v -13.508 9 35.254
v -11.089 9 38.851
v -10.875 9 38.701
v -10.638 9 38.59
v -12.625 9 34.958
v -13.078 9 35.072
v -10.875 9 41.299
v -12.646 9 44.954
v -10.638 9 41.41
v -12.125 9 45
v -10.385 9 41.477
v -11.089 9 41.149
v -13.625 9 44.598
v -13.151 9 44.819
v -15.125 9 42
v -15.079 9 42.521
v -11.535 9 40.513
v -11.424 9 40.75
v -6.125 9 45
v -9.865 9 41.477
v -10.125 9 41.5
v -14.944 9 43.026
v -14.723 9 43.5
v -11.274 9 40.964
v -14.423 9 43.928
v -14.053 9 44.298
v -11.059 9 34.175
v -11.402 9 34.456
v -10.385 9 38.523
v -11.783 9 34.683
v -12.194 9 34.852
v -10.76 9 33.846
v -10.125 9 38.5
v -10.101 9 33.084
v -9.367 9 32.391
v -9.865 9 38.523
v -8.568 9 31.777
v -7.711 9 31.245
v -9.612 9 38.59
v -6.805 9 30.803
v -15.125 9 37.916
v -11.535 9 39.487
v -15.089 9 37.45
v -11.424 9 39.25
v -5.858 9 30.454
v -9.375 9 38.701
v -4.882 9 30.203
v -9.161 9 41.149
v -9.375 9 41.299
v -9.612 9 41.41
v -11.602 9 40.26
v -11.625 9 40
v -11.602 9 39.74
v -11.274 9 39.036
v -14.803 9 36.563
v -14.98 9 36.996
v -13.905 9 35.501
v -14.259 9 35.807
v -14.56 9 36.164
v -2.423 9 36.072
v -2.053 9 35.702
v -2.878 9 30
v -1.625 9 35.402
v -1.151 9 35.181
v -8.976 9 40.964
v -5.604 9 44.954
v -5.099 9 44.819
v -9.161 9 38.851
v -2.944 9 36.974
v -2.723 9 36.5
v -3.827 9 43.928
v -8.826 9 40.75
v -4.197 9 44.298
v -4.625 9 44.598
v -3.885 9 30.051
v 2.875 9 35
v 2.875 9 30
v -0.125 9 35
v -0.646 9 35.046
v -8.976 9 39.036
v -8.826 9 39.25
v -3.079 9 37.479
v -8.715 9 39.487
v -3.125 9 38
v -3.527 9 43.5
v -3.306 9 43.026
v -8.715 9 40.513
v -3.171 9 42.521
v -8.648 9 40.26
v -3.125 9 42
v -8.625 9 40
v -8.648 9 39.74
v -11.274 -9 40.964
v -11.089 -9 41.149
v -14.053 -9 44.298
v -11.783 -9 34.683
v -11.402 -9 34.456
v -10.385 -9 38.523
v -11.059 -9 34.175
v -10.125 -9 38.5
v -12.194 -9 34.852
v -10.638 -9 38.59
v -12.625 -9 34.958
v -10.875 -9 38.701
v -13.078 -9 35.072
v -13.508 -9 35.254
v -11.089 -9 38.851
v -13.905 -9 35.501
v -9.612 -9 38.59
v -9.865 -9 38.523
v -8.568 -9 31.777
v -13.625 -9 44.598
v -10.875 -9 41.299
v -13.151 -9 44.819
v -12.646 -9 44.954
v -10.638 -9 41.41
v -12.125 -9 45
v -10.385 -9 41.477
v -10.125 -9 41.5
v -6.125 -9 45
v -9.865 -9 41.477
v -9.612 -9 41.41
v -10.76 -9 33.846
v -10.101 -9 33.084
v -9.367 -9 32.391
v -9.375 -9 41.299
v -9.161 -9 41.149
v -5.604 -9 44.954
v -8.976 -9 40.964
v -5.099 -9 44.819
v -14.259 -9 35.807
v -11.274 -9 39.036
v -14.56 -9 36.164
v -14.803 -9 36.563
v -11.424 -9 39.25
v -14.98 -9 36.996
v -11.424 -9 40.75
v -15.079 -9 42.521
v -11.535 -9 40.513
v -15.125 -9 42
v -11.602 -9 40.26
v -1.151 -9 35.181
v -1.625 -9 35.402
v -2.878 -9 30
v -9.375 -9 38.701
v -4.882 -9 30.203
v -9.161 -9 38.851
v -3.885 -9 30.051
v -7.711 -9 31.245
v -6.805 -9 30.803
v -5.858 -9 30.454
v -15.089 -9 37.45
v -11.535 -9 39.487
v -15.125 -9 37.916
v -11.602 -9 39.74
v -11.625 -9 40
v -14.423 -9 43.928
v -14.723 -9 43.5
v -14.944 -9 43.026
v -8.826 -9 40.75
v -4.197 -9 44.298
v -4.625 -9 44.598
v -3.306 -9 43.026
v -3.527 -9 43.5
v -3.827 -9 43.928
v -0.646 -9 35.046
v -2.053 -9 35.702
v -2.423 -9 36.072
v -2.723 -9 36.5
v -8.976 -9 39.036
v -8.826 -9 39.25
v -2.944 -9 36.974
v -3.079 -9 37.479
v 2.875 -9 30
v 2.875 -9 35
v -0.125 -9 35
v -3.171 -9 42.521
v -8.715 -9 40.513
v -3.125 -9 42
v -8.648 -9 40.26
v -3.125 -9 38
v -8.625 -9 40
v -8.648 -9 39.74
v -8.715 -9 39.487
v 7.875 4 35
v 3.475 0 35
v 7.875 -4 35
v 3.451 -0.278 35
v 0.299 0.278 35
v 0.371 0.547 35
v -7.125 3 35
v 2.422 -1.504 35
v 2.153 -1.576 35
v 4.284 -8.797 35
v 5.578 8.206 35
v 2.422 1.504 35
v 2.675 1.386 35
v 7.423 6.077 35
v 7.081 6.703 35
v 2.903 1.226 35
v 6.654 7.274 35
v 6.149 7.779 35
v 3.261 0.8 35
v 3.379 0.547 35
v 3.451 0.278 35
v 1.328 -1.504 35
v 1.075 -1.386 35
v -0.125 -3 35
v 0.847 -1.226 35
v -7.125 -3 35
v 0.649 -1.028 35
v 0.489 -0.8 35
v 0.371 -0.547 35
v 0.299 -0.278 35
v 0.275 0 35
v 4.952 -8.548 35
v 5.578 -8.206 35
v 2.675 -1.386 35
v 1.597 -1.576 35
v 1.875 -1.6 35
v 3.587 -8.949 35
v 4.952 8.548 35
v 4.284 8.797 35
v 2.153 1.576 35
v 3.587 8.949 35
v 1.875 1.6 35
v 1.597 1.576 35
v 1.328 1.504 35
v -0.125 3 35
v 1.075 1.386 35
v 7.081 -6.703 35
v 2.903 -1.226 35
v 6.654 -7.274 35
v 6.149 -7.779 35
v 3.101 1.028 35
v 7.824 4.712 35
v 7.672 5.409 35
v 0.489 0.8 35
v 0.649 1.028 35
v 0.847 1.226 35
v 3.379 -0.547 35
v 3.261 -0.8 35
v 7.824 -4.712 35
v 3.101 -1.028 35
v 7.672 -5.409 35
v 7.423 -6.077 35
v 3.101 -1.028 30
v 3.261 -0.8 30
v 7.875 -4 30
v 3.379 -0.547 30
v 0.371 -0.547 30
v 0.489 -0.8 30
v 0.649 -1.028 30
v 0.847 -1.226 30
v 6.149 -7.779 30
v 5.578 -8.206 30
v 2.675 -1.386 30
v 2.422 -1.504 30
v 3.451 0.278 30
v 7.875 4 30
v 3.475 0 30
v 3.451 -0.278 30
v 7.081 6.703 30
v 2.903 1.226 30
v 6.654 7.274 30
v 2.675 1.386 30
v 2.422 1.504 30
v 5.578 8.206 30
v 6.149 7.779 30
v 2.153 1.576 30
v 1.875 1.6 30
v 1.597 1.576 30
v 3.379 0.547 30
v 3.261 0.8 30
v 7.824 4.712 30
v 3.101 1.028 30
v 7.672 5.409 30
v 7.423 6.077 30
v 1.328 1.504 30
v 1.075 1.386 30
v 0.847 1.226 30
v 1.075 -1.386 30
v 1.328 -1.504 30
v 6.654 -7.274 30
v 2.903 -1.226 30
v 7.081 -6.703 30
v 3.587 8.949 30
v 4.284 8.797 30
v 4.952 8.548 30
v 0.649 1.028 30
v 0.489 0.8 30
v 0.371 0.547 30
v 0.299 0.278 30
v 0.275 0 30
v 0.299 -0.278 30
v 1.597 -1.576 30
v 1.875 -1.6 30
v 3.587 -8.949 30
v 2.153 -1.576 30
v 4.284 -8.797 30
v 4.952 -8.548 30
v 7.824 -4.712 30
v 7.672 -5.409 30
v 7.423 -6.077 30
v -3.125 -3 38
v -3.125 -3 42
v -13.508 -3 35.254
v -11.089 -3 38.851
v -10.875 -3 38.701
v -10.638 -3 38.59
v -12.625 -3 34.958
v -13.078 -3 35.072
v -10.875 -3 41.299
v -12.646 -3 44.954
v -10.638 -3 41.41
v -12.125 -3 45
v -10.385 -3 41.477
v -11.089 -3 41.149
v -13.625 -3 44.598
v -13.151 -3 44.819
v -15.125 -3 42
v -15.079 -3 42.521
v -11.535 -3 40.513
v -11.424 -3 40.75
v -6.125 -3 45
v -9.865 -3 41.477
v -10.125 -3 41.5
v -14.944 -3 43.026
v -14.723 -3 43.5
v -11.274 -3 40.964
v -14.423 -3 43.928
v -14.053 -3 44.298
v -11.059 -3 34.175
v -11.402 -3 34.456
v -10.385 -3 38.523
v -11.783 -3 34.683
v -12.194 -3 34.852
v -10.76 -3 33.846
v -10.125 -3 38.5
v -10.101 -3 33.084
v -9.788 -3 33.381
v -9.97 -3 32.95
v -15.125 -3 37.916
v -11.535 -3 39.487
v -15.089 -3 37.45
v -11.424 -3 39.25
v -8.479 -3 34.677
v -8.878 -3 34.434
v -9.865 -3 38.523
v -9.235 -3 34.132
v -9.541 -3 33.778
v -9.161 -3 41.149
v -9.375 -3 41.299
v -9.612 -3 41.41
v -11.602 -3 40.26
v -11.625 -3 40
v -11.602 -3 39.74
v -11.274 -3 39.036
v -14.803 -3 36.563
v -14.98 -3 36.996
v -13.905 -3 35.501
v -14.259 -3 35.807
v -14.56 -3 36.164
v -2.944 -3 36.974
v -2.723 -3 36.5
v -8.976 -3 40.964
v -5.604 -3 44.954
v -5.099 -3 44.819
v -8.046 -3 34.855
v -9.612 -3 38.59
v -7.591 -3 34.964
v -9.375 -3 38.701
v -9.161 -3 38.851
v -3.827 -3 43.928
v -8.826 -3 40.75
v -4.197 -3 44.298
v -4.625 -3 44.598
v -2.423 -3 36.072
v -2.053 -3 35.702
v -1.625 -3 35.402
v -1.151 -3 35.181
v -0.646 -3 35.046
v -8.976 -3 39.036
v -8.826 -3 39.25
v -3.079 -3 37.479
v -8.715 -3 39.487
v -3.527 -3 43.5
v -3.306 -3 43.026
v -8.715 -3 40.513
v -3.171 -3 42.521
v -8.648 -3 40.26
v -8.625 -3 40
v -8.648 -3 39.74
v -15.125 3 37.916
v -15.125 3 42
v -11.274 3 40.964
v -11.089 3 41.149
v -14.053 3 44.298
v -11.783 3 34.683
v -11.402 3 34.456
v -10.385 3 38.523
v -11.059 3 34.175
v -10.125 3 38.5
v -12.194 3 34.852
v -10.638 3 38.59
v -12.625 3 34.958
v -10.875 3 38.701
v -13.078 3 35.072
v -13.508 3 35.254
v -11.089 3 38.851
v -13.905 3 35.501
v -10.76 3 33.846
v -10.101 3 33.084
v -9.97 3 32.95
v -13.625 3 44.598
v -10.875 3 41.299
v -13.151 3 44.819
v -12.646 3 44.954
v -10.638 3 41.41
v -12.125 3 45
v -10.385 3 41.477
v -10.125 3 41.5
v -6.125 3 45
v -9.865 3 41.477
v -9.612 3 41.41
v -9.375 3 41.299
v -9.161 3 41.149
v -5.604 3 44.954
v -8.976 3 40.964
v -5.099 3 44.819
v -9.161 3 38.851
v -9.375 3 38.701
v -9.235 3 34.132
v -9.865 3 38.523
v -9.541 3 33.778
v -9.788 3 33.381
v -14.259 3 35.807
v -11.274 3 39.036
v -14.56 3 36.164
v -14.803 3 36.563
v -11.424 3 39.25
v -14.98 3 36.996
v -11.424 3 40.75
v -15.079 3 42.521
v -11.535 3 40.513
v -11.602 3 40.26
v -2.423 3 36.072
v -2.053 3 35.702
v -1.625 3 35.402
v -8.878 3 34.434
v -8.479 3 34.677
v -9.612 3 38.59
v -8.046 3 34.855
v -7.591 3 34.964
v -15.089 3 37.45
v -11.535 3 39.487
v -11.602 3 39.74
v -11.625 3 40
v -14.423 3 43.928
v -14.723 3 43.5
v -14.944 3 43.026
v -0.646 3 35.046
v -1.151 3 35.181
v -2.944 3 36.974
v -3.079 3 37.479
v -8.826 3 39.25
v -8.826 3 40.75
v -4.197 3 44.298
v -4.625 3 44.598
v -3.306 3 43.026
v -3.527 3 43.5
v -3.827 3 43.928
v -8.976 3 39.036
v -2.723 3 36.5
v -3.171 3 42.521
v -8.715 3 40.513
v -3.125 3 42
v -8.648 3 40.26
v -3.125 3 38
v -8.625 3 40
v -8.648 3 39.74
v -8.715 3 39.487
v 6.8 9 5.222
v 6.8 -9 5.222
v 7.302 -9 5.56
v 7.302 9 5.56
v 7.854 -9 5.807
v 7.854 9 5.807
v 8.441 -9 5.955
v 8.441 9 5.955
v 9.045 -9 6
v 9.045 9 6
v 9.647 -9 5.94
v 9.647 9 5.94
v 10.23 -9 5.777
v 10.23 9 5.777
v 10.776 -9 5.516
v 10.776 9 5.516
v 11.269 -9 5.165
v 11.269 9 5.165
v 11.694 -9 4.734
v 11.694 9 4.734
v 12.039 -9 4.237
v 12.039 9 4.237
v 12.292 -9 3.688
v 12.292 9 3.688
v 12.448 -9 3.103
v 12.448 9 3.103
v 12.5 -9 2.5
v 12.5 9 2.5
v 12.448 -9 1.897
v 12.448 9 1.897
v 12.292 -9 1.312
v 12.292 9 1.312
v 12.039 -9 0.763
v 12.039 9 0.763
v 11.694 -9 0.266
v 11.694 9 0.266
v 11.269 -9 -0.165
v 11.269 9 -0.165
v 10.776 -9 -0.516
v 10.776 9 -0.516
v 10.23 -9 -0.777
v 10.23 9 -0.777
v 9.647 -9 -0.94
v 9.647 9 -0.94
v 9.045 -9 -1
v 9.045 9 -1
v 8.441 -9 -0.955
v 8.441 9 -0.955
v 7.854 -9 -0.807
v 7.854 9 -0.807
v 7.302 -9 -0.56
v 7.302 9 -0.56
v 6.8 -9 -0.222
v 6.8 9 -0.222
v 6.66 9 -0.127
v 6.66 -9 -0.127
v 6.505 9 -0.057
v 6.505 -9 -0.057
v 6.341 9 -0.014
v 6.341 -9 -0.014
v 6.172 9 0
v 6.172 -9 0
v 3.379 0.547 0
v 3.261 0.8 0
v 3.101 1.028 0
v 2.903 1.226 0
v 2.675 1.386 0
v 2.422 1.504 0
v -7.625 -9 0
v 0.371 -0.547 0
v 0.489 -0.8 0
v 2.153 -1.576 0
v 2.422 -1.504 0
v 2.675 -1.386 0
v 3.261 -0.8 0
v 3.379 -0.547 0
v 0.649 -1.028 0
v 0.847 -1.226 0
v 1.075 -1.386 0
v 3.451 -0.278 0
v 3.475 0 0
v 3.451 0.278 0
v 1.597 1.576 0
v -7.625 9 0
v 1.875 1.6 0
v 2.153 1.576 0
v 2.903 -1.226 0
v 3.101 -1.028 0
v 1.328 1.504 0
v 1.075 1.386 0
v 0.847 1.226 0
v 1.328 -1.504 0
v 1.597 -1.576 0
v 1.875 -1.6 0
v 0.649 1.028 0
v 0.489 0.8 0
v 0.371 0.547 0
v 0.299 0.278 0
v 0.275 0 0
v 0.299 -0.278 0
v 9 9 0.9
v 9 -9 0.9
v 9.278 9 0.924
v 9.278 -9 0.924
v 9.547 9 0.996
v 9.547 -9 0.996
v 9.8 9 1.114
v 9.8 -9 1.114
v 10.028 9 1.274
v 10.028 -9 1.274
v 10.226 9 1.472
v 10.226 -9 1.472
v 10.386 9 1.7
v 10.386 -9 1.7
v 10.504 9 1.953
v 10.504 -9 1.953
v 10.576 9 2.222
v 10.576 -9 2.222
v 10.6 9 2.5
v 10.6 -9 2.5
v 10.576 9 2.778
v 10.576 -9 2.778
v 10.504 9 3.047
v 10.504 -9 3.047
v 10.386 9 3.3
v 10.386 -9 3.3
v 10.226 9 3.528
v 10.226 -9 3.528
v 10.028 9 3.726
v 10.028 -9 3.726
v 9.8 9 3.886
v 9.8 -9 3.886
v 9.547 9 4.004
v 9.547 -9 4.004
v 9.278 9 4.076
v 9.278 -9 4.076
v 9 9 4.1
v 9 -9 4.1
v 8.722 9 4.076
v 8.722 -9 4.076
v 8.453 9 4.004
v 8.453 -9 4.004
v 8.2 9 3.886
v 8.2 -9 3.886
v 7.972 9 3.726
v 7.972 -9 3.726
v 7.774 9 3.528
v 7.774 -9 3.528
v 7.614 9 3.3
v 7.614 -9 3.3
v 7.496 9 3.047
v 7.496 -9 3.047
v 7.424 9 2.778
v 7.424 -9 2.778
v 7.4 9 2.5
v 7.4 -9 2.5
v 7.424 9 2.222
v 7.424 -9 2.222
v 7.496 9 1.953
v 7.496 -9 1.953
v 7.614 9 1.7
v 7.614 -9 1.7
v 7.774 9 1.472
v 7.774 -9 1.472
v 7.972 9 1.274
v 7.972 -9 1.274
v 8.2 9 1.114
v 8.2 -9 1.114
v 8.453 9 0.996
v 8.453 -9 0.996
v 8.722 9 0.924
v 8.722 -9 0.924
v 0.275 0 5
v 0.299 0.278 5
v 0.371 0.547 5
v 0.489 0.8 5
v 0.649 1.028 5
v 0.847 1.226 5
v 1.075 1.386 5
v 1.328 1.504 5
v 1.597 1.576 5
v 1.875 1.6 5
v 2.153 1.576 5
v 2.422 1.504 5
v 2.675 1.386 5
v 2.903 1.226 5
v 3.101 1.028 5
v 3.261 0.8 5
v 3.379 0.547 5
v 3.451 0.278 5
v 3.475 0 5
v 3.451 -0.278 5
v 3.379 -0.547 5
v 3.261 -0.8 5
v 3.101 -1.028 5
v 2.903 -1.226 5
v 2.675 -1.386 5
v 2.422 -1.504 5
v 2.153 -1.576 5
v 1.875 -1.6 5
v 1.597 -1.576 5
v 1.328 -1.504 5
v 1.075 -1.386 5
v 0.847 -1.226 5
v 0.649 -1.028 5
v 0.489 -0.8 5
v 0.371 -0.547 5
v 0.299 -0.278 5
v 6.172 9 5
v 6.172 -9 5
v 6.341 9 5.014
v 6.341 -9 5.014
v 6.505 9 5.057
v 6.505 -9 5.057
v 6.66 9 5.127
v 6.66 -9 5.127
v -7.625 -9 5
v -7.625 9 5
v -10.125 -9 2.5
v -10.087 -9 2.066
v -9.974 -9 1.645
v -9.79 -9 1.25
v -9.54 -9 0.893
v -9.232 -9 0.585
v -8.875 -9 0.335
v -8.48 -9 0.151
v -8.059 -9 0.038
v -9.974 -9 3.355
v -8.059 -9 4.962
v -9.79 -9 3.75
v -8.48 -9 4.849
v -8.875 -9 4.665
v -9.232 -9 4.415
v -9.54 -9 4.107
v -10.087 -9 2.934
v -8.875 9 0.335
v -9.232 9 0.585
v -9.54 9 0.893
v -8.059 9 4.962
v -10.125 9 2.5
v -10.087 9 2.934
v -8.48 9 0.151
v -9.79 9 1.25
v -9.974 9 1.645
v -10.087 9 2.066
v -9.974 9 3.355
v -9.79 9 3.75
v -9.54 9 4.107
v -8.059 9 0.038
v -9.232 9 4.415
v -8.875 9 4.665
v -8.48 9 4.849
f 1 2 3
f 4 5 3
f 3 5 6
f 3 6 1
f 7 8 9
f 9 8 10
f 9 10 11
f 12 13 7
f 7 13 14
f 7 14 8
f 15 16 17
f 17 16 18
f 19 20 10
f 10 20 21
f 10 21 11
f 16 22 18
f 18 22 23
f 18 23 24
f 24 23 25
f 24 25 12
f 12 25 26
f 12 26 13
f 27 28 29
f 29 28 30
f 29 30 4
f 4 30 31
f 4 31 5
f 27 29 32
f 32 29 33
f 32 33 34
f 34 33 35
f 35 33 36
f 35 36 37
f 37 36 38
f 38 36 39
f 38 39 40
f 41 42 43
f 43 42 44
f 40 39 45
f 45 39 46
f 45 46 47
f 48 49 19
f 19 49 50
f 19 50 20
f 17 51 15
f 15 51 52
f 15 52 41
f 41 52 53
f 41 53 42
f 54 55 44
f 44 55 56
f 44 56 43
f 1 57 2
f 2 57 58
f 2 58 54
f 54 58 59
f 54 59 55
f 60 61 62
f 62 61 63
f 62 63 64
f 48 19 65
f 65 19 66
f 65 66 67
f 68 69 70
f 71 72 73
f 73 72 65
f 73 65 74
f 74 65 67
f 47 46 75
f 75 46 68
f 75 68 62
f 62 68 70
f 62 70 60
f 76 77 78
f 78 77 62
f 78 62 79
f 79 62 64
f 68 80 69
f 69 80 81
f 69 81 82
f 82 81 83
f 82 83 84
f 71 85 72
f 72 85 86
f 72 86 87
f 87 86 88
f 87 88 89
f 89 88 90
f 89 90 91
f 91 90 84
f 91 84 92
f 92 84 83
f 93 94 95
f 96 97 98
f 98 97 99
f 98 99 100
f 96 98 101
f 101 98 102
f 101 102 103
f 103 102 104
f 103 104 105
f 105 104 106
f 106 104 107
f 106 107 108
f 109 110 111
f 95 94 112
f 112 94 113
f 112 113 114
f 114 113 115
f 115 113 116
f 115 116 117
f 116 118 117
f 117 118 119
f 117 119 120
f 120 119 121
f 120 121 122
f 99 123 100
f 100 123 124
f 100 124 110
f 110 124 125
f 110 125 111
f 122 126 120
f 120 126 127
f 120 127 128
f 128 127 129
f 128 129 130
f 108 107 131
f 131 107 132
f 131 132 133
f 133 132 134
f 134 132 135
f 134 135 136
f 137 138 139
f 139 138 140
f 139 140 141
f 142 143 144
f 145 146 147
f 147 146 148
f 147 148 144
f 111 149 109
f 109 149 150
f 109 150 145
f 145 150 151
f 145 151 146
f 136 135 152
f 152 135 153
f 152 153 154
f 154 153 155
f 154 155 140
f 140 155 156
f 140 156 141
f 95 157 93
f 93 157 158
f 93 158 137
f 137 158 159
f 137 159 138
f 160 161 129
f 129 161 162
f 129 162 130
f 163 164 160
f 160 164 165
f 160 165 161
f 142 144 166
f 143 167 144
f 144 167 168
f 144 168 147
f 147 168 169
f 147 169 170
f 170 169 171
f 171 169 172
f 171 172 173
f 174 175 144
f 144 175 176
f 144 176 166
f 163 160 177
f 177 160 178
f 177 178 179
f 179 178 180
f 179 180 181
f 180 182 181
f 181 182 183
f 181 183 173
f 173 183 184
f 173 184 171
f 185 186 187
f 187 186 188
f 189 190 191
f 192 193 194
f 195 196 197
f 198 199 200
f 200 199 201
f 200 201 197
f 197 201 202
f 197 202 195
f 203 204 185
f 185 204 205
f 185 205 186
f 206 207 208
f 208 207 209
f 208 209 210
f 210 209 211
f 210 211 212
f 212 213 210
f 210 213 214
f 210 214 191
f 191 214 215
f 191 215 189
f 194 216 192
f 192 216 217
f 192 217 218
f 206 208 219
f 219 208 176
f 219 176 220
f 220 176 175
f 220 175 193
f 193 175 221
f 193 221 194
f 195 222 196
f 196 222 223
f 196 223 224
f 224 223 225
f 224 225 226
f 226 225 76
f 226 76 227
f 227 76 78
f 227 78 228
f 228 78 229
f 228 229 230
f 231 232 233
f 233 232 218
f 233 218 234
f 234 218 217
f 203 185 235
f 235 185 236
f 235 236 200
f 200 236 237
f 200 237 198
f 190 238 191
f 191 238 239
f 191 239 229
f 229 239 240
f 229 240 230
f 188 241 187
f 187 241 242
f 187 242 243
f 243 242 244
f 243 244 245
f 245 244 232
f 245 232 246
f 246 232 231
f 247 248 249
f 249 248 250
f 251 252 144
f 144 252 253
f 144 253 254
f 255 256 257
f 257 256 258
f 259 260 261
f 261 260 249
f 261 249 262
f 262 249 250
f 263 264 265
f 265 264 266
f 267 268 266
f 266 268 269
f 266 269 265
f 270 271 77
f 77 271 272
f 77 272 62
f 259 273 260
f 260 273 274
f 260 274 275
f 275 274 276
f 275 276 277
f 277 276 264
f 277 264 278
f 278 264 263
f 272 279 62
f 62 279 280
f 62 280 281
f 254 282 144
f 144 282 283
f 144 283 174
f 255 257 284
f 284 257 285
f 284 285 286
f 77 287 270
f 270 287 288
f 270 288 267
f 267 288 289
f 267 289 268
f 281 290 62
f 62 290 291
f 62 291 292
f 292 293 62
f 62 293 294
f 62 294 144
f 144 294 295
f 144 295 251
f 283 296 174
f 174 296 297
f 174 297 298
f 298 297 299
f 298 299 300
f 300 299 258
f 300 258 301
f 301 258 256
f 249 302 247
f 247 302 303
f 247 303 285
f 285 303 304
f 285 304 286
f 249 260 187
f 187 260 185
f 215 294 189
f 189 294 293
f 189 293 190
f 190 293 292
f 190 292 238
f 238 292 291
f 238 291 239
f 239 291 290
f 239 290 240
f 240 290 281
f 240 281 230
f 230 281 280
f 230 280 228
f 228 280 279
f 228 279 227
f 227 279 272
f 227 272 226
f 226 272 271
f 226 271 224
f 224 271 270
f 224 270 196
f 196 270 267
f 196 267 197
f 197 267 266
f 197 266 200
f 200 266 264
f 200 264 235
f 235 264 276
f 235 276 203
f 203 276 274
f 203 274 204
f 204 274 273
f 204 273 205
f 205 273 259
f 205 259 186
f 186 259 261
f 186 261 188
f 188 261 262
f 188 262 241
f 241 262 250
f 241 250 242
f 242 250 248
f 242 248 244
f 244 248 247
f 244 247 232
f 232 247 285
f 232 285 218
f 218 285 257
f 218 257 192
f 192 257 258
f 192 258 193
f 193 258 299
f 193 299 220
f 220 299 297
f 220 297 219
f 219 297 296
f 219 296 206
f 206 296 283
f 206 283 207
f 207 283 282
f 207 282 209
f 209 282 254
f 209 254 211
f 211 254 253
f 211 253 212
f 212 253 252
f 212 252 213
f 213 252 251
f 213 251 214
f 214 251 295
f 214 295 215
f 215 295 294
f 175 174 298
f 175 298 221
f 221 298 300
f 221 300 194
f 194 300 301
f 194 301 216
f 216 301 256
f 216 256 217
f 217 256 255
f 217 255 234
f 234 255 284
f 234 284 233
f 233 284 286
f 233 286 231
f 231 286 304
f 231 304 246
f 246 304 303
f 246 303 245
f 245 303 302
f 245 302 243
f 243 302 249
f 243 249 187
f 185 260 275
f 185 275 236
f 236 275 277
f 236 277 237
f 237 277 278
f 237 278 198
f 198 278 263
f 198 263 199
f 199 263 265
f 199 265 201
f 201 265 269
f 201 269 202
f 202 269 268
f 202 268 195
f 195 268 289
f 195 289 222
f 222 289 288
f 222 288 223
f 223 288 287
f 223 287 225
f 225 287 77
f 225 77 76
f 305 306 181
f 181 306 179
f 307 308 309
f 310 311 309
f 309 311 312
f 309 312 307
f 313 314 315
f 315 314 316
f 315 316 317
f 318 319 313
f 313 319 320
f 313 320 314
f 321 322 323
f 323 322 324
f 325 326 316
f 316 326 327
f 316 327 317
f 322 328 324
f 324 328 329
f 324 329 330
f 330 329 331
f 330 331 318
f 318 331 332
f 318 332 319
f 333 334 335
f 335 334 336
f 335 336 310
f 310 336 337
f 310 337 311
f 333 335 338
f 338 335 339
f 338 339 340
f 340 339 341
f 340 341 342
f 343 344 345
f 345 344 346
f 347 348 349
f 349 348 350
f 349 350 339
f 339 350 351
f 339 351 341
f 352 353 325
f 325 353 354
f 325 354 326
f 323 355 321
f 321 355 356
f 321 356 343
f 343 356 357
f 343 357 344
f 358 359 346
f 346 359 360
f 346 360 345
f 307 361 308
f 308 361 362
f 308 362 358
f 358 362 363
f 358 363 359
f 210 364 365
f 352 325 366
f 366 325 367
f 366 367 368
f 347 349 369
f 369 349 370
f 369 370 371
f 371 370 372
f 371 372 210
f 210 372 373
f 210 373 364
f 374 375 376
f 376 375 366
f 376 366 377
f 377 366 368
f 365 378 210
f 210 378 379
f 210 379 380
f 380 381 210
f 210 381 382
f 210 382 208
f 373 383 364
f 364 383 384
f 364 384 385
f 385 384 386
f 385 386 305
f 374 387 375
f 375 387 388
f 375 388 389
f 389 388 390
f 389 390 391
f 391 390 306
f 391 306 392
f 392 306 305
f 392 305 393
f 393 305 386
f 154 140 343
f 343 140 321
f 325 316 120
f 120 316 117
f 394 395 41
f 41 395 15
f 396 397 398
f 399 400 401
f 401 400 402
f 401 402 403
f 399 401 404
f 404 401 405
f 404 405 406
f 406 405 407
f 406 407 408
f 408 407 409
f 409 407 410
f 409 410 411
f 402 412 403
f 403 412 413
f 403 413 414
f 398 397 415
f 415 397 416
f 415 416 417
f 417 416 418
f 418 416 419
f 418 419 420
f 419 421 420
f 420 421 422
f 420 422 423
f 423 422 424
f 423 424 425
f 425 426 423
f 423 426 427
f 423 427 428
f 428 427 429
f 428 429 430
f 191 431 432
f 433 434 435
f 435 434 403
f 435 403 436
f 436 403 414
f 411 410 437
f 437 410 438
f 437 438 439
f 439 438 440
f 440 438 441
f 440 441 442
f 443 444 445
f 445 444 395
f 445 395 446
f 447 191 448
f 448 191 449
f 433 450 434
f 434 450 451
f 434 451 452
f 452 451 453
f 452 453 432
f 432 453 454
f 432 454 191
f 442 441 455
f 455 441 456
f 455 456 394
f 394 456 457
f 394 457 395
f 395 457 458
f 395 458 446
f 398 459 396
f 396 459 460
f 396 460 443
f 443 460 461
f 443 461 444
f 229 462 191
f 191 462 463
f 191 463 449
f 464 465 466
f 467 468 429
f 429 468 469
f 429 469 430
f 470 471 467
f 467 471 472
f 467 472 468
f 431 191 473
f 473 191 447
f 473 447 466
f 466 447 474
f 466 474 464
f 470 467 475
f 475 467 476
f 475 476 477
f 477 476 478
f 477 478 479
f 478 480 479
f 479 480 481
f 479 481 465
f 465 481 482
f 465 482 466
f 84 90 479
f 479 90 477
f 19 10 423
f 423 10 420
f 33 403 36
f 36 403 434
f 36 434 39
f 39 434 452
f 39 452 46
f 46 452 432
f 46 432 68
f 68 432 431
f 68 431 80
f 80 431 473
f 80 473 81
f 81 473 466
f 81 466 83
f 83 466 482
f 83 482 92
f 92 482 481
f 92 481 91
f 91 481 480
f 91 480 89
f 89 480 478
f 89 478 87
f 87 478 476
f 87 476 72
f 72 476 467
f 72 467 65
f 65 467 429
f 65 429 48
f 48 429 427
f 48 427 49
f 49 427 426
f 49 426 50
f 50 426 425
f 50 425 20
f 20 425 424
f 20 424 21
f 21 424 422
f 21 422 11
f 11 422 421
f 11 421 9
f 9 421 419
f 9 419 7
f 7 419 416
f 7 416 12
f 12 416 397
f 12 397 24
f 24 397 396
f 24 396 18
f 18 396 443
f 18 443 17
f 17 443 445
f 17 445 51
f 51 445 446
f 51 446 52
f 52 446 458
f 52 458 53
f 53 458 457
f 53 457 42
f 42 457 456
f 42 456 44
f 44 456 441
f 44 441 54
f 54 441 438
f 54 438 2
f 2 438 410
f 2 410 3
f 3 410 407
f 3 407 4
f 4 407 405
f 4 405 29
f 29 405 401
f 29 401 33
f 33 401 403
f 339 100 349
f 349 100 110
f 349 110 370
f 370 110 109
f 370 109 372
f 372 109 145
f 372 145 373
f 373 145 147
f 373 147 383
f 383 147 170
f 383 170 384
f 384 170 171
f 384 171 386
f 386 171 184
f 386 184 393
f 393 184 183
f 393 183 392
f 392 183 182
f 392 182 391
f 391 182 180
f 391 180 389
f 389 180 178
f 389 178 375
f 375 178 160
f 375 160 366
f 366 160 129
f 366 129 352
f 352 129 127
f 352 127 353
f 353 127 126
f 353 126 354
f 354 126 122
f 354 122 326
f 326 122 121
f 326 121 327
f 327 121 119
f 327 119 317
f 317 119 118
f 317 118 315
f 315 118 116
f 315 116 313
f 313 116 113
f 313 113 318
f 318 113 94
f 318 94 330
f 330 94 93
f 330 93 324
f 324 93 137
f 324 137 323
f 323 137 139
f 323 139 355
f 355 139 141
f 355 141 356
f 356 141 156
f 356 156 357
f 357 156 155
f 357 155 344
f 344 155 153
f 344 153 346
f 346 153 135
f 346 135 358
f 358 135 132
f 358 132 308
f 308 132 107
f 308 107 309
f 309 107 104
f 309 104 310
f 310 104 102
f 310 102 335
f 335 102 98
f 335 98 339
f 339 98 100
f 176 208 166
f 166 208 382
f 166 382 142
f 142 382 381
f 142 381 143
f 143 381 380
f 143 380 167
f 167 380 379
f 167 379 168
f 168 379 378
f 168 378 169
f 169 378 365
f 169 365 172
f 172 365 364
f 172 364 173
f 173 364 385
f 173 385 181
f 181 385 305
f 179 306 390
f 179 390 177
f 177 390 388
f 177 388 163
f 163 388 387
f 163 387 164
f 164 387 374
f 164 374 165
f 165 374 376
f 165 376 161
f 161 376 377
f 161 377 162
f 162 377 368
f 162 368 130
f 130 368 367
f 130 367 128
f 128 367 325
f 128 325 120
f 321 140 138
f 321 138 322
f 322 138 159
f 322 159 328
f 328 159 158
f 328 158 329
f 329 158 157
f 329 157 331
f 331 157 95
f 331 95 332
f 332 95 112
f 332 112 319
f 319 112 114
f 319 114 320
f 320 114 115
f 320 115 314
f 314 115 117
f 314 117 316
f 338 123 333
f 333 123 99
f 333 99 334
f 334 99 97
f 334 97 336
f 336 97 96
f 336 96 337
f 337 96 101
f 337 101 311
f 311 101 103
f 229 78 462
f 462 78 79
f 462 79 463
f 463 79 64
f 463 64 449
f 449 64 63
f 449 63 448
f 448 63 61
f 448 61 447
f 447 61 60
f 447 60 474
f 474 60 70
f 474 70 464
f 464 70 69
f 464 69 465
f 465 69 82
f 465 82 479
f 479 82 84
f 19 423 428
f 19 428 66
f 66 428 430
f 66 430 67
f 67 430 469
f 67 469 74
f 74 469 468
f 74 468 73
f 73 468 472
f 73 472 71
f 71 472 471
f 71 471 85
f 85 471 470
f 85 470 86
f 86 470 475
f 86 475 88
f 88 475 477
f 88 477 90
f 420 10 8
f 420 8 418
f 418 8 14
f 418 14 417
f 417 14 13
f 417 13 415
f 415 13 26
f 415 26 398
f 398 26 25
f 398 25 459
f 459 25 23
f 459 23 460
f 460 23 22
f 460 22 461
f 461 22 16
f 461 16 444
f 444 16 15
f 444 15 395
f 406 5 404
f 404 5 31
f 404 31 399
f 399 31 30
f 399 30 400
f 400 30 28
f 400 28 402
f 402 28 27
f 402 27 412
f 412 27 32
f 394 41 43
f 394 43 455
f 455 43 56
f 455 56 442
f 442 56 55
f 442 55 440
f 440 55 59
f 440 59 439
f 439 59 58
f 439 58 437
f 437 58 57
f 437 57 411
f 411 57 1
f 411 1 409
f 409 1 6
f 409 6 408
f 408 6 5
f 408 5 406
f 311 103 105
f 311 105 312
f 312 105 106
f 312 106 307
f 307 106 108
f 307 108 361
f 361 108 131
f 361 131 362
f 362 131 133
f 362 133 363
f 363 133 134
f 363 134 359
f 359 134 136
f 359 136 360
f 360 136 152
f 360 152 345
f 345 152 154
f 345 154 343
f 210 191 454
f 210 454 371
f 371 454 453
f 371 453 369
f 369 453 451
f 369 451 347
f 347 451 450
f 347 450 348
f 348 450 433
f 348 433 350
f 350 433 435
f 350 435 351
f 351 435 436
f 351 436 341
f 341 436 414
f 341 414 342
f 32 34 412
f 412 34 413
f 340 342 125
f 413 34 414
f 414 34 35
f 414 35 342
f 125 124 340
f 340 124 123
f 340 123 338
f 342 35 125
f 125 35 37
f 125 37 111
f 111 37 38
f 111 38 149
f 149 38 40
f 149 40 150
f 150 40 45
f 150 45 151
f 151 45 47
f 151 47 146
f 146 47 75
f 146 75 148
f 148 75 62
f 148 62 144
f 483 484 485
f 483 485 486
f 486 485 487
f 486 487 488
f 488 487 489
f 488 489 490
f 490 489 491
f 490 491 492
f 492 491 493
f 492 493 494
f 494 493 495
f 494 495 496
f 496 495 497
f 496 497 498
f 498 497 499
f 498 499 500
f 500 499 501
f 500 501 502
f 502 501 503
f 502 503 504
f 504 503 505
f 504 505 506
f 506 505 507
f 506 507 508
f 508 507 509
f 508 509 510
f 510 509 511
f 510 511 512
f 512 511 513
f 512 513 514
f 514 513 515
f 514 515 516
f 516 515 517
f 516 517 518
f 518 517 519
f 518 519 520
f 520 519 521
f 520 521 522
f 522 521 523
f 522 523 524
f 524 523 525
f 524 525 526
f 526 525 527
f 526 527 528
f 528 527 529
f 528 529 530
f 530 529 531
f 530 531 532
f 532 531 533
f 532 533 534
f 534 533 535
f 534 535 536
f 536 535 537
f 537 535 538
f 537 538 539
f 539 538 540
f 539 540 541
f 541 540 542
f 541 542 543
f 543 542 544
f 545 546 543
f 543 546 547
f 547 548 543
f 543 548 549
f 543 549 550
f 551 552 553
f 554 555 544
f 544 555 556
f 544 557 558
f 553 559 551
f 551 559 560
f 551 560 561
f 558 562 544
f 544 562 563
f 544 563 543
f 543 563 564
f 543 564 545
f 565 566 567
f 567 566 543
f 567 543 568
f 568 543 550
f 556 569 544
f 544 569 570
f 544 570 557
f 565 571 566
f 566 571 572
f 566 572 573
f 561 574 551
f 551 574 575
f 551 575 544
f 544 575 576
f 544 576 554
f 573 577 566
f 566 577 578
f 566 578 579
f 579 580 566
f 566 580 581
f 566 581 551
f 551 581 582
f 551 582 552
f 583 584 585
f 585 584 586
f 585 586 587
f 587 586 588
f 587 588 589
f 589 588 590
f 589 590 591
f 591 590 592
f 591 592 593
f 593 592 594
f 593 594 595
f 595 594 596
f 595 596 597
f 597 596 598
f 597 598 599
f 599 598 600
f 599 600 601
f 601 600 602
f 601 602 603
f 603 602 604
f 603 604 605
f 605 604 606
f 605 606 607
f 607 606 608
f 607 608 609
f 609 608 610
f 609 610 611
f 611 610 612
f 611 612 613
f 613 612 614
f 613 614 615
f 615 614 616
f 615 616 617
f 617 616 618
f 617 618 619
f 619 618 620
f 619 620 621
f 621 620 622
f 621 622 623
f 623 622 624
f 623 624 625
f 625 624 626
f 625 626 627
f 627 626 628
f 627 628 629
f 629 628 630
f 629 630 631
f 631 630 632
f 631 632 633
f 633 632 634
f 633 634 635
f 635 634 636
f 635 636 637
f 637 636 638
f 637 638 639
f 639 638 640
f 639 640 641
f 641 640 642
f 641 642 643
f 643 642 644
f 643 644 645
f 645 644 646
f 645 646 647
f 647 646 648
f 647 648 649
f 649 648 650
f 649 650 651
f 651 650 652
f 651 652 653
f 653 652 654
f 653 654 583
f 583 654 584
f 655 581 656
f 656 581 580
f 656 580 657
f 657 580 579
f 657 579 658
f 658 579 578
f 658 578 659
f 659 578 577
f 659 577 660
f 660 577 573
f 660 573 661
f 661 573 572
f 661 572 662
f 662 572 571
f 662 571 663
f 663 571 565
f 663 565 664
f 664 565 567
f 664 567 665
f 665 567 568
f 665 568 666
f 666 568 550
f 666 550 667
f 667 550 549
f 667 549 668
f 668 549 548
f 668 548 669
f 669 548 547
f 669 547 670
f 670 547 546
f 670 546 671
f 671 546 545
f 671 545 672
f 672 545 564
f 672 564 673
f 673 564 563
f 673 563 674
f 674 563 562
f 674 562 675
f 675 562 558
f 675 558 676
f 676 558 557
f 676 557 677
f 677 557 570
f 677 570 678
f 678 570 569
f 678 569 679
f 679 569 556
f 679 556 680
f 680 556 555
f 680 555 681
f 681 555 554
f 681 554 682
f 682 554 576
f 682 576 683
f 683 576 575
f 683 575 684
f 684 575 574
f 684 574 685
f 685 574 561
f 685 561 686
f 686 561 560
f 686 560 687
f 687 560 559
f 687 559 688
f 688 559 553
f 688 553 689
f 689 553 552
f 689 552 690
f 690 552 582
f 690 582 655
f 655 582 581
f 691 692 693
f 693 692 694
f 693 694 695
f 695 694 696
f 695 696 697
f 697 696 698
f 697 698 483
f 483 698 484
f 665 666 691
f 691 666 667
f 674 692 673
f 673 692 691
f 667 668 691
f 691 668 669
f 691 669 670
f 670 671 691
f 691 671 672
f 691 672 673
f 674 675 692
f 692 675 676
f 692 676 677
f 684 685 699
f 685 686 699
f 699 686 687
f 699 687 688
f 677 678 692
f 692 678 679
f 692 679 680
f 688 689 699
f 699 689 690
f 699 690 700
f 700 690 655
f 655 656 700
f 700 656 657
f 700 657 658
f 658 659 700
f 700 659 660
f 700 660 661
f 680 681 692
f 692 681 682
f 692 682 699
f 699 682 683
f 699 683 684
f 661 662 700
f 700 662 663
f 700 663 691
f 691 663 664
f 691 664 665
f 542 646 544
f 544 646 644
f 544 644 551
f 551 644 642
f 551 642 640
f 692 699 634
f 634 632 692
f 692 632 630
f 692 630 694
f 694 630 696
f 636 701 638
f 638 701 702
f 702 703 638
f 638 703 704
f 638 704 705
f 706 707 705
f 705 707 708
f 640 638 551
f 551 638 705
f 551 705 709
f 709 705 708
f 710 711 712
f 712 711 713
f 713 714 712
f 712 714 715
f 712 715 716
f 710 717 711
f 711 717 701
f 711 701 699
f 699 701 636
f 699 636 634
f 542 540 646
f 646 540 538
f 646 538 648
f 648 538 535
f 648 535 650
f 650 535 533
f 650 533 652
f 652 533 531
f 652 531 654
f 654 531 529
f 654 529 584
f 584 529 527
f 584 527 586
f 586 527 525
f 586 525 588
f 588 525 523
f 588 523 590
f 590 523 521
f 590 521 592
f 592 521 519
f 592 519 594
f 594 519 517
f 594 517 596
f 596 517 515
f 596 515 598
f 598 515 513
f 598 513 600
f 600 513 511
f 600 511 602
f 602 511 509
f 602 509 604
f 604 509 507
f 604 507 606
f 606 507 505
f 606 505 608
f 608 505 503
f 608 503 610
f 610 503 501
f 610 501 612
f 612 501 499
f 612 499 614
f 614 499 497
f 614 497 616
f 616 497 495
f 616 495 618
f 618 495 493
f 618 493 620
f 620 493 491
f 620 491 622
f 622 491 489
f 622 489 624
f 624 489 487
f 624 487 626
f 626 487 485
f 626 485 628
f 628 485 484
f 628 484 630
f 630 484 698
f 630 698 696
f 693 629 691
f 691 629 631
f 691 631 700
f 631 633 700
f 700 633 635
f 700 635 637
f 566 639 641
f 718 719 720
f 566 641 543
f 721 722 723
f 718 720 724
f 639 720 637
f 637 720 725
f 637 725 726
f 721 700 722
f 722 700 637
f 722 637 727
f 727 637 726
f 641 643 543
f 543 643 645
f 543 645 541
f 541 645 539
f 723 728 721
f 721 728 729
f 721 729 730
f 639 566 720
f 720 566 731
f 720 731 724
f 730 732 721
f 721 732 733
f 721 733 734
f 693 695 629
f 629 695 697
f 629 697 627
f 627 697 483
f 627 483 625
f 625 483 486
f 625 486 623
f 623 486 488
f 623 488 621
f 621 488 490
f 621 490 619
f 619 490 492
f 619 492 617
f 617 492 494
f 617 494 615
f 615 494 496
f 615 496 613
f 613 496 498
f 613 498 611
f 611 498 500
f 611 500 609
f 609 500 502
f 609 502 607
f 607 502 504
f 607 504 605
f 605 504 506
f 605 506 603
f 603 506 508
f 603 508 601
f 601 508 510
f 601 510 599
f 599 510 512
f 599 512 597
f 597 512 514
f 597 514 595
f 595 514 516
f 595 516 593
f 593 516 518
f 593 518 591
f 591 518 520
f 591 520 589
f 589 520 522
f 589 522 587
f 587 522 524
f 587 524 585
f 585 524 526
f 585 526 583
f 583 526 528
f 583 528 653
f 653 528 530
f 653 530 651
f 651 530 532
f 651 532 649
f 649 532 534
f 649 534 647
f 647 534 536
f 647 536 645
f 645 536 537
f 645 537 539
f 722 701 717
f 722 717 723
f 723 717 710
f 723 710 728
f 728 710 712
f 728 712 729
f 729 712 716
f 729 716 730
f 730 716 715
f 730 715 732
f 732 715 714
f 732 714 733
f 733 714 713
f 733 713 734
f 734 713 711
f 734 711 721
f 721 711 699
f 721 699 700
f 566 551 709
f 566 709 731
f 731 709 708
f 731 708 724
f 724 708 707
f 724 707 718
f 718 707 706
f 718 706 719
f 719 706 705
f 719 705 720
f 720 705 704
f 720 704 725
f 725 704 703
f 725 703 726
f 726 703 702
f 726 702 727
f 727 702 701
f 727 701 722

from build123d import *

# Parameters (mm, degrees)
SKETCH1_W               = 20.25
SKETCH1_H               = 18
BOSS_EXTRUDE1_DEPTH     = 5
SKETCH2_W               = 5
SKETCH2_H               = 18
BOSS_EXTRUDE2_DEPTH     = 25
SKETCH3_W               = 18
SKETCH3_H               = 18
BOSS_EXTRUDE3_DEPTH     = 5
CUT_EXTRUDE2_DEPTH      = 33.916798523
CUT_EXTRUDE2_DEPTH_BACK = 33.916798523
SKETCH5_R               = 1.6
FILLET7_R               = 5
CUT_EXTRUDE4_DEPTH      = 41.638843795
CUT_EXTRUDE4_DEPTH_BACK = 41.638843795
SKETCH10_R              = 1.6
SKETCH10_4_R            = 3.5
SKETCH10_4_R_2          = 1.6
BOSS_EXTRUDE7_DEPTH     = 18
FILLET13_R              = 1
SKETCH11_W              = 12
SKETCH11_H              = 6
BOSS_EXTRUDE8_DEPTH     = 10
CUT_EXTRUDE5_DEPTH      = 51.771701025
CUT_EXTRUDE5_DEPTH_BACK = 51.771701025
SKETCH12_R              = 1.5
FILLET17_R              = 3
FILLET18_R              = 3
FILLET19_R              = 3
SKETCH13_W              = 25
SKETCH13_H              = 18
CUT_EXTRUDE6_DEPTH      = 10
FILLET20_R              = 10
FILLET21_R              = 2.5


# Some blends are built 0.0001 mm under size
with BuildPart() as part:
    # Sketch1 → Boss-Extrude1 (new body)
    with BuildSketch(Plane.XY):
        Rectangle(SKETCH1_W, SKETCH1_H)
    extrude(amount=BOSS_EXTRUDE1_DEPTH)

    # Sketch2 → Boss-Extrude2 (add)
    with BuildSketch(Plane.XY.offset(5)):
        with Locations((-7.625, 0)):
            Rectangle(SKETCH2_W, SKETCH2_H)
    extrude(amount=BOSS_EXTRUDE2_DEPTH)

    # Sketch3 → Boss-Extrude3 (add)
    with BuildSketch(Plane.XY.offset(30)):
        with Locations((-1.125, 0)):
            Rectangle(SKETCH3_W, SKETCH3_H)
    extrude(amount=BOSS_EXTRUDE3_DEPTH)

    # Sketch5 → Cut-Extrude2 (cut, two sides: drawn at the far end of the back side and taken through both)
    with BuildSketch(Plane(origin=(0, 0, 30), x_dir=(-1, 0, 0), z_dir=(0, 0, -1)).offset(-CUT_EXTRUDE2_DEPTH_BACK)):
        with Locations((-1.875, 0)):
            Circle(SKETCH5_R)
    extrude(amount=CUT_EXTRUDE2_DEPTH + CUT_EXTRUDE2_DEPTH_BACK, mode=Mode.SUBTRACT)

    # Fillet7
    fillet7_edges = [part.edges().sort_by_distance(p)[0] for p in [
        (7.875, -9, 32.5),
        (7.875, 9, 32.5),
    ]]
    fillet(fillet7_edges, radius=FILLET7_R)

    # Sketch10 → Cut-Extrude4 (cut, two sides: drawn at the far end of the back side and taken through both)
    with BuildSketch(Plane.XZ.offset(9).offset(-CUT_EXTRUDE4_DEPTH_BACK)):
        with Locations((9, 2.5)):
            Circle(SKETCH10_R)
    extrude(amount=CUT_EXTRUDE4_DEPTH + CUT_EXTRUDE4_DEPTH_BACK, mode=Mode.SUBTRACT)

    # Sketch10<4> → Boss-Extrude7 (add)
    with BuildSketch(Plane.XZ.offset(9)):
        with Locations((9, 2.5)):
            Circle(SKETCH10_4_R)
        with Locations(Location((9, 2.5, 0), (0, 0, 270))):
            Circle(SKETCH10_4_R_2, mode=Mode.SUBTRACT)
    extrude(amount=-BOSS_EXTRUDE7_DEPTH)

    # Fillet13
    fillet13_edges = [part.edges().sort_by_distance(p)[0] for p in [
        (6.550510257, 0, 0),
        (6.550510257, 0, 5),
    ]]
    fillet(fillet13_edges, radius=FILLET13_R)

    # Sketch11 → Boss-Extrude8 (add)
    with BuildSketch(Plane.XY.offset(35)):
        with Locations((-9.125, 6)):
            Rectangle(SKETCH11_W, SKETCH11_H)
        with Locations((-9.125, -6)):
            Rectangle(SKETCH11_W, SKETCH11_H)
    extrude(amount=BOSS_EXTRUDE8_DEPTH)

    # Sketch12 → Cut-Extrude5 (cut, two sides: drawn at the far end of the back side and taken through both)
    with BuildSketch(Plane(origin=(0, 9, 0), x_dir=(1, 0, 0), z_dir=(0, 1, 0)).offset(-CUT_EXTRUDE5_DEPTH_BACK)):
        with Locations(Location((-10.125, -40, 0), (0, 0, 90))):
            Circle(SKETCH12_R)
    extrude(amount=CUT_EXTRUDE5_DEPTH + CUT_EXTRUDE5_DEPTH_BACK, mode=Mode.SUBTRACT)

    # Fillet17
    fillet17_edges = [part.edges().sort_by_distance(p)[0] for p in [
        (-10.125, -6, 35),
        (-15.125, 6, 45),
        (-3.125, 6, 35),
        (-3.125, 6, 45),
        (-3.125, -6, 35),
        (-3.125, -6, 45),
        (-15.125, -6, 45),
        (-10.125, 6, 35),
    ]]
    fillet(fillet17_edges, radius=FILLET17_R)

    # Fillet18
    fillet18_edges = [part.edges().sort_by_distance(p)[0] for p in [
        (-15.125, 6, 35),
        (-15.125, -6, 35),
    ]]
    fillet(fillet18_edges, radius=FILLET18_R)

    # Fillet19
    fillet19_edges = [part.edges().sort_by_distance(p)[0] for p in [
        (-10.125, 0, 35),
    ]]
    fillet(fillet19_edges, radius=FILLET19_R)

    # Sketch13 → Cut-Extrude6 (cut)
    with BuildSketch(Plane(origin=(-5.125, 0, 0), x_dir=(0, 0, -1), z_dir=(1, 0, 0))):
        with Locations((-17.5, 0)):
            Rectangle(SKETCH13_W, SKETCH13_H)
    extrude(amount=-CUT_EXTRUDE6_DEPTH, mode=Mode.SUBTRACT)


with BuildPart() as cut_extrude6_piece_1:
    # of the separate pieces the step leaves, piece 1, a body of its own (cut_extrude6_pieces)
    add(part.part.solids().sort_by_distance((-10.125, -9, 32))[0])

    # Fillet20
    # the kernel refuses this fillet: 10 mm, written as the material it takes off along each edge
    with BuildSketch(Plane(origin=(-10.125, 27.117376915, 30), x_dir=(-0.16297450432591723, 0, 0.9866302807737667), z_dir=(0, -1, 0))) as fillet20_piece_1:
        with BuildLine():
            CenterArc((8.685234599, -8.779806112), FILLET20_R, 118.600282976, 52.020127555)
            Line((-1.181068209, -7.150061069), (-2.16769849, -6.987086565))
            Line((-2.16769849, -6.987086565), (-0.986630281, 0.162974504))
            Line((-0.986630281, 0.162974504), (0.162974504, 0.986630281))
            ThreePointArc((0.162974504, 0.986630281), (2.136235066, 0.660681272), (3.419576463, 0.877980611))
            Line((3.419576463, 0.877980611), (3.898272657, 0))
        make_face()
    extrude(amount=54.23475383, mode=Mode.SUBTRACT)


with BuildPart() as cut_extrude6_piece_2:
    # of the separate pieces the step leaves, piece 2, a body of its own (cut_extrude6_pieces)
    add(part.part.solids().sort_by_distance((-10.125, -9, 0))[0])

    # Fillet21
    fillet21_edges = [cut_extrude6_piece_2.edges().sort_by_distance(p)[0] for p in [
        (-10.125, 0, 0),
        (-10.125, 0, 5),
    ]]
    fillet(fillet21_edges, radius=FILLET21_R - 0.0001)  # a hair under: the kernel refuses the full size


solid = Compound([cut_extrude6_piece_1.part, cut_extrude6_piece_2.part])
